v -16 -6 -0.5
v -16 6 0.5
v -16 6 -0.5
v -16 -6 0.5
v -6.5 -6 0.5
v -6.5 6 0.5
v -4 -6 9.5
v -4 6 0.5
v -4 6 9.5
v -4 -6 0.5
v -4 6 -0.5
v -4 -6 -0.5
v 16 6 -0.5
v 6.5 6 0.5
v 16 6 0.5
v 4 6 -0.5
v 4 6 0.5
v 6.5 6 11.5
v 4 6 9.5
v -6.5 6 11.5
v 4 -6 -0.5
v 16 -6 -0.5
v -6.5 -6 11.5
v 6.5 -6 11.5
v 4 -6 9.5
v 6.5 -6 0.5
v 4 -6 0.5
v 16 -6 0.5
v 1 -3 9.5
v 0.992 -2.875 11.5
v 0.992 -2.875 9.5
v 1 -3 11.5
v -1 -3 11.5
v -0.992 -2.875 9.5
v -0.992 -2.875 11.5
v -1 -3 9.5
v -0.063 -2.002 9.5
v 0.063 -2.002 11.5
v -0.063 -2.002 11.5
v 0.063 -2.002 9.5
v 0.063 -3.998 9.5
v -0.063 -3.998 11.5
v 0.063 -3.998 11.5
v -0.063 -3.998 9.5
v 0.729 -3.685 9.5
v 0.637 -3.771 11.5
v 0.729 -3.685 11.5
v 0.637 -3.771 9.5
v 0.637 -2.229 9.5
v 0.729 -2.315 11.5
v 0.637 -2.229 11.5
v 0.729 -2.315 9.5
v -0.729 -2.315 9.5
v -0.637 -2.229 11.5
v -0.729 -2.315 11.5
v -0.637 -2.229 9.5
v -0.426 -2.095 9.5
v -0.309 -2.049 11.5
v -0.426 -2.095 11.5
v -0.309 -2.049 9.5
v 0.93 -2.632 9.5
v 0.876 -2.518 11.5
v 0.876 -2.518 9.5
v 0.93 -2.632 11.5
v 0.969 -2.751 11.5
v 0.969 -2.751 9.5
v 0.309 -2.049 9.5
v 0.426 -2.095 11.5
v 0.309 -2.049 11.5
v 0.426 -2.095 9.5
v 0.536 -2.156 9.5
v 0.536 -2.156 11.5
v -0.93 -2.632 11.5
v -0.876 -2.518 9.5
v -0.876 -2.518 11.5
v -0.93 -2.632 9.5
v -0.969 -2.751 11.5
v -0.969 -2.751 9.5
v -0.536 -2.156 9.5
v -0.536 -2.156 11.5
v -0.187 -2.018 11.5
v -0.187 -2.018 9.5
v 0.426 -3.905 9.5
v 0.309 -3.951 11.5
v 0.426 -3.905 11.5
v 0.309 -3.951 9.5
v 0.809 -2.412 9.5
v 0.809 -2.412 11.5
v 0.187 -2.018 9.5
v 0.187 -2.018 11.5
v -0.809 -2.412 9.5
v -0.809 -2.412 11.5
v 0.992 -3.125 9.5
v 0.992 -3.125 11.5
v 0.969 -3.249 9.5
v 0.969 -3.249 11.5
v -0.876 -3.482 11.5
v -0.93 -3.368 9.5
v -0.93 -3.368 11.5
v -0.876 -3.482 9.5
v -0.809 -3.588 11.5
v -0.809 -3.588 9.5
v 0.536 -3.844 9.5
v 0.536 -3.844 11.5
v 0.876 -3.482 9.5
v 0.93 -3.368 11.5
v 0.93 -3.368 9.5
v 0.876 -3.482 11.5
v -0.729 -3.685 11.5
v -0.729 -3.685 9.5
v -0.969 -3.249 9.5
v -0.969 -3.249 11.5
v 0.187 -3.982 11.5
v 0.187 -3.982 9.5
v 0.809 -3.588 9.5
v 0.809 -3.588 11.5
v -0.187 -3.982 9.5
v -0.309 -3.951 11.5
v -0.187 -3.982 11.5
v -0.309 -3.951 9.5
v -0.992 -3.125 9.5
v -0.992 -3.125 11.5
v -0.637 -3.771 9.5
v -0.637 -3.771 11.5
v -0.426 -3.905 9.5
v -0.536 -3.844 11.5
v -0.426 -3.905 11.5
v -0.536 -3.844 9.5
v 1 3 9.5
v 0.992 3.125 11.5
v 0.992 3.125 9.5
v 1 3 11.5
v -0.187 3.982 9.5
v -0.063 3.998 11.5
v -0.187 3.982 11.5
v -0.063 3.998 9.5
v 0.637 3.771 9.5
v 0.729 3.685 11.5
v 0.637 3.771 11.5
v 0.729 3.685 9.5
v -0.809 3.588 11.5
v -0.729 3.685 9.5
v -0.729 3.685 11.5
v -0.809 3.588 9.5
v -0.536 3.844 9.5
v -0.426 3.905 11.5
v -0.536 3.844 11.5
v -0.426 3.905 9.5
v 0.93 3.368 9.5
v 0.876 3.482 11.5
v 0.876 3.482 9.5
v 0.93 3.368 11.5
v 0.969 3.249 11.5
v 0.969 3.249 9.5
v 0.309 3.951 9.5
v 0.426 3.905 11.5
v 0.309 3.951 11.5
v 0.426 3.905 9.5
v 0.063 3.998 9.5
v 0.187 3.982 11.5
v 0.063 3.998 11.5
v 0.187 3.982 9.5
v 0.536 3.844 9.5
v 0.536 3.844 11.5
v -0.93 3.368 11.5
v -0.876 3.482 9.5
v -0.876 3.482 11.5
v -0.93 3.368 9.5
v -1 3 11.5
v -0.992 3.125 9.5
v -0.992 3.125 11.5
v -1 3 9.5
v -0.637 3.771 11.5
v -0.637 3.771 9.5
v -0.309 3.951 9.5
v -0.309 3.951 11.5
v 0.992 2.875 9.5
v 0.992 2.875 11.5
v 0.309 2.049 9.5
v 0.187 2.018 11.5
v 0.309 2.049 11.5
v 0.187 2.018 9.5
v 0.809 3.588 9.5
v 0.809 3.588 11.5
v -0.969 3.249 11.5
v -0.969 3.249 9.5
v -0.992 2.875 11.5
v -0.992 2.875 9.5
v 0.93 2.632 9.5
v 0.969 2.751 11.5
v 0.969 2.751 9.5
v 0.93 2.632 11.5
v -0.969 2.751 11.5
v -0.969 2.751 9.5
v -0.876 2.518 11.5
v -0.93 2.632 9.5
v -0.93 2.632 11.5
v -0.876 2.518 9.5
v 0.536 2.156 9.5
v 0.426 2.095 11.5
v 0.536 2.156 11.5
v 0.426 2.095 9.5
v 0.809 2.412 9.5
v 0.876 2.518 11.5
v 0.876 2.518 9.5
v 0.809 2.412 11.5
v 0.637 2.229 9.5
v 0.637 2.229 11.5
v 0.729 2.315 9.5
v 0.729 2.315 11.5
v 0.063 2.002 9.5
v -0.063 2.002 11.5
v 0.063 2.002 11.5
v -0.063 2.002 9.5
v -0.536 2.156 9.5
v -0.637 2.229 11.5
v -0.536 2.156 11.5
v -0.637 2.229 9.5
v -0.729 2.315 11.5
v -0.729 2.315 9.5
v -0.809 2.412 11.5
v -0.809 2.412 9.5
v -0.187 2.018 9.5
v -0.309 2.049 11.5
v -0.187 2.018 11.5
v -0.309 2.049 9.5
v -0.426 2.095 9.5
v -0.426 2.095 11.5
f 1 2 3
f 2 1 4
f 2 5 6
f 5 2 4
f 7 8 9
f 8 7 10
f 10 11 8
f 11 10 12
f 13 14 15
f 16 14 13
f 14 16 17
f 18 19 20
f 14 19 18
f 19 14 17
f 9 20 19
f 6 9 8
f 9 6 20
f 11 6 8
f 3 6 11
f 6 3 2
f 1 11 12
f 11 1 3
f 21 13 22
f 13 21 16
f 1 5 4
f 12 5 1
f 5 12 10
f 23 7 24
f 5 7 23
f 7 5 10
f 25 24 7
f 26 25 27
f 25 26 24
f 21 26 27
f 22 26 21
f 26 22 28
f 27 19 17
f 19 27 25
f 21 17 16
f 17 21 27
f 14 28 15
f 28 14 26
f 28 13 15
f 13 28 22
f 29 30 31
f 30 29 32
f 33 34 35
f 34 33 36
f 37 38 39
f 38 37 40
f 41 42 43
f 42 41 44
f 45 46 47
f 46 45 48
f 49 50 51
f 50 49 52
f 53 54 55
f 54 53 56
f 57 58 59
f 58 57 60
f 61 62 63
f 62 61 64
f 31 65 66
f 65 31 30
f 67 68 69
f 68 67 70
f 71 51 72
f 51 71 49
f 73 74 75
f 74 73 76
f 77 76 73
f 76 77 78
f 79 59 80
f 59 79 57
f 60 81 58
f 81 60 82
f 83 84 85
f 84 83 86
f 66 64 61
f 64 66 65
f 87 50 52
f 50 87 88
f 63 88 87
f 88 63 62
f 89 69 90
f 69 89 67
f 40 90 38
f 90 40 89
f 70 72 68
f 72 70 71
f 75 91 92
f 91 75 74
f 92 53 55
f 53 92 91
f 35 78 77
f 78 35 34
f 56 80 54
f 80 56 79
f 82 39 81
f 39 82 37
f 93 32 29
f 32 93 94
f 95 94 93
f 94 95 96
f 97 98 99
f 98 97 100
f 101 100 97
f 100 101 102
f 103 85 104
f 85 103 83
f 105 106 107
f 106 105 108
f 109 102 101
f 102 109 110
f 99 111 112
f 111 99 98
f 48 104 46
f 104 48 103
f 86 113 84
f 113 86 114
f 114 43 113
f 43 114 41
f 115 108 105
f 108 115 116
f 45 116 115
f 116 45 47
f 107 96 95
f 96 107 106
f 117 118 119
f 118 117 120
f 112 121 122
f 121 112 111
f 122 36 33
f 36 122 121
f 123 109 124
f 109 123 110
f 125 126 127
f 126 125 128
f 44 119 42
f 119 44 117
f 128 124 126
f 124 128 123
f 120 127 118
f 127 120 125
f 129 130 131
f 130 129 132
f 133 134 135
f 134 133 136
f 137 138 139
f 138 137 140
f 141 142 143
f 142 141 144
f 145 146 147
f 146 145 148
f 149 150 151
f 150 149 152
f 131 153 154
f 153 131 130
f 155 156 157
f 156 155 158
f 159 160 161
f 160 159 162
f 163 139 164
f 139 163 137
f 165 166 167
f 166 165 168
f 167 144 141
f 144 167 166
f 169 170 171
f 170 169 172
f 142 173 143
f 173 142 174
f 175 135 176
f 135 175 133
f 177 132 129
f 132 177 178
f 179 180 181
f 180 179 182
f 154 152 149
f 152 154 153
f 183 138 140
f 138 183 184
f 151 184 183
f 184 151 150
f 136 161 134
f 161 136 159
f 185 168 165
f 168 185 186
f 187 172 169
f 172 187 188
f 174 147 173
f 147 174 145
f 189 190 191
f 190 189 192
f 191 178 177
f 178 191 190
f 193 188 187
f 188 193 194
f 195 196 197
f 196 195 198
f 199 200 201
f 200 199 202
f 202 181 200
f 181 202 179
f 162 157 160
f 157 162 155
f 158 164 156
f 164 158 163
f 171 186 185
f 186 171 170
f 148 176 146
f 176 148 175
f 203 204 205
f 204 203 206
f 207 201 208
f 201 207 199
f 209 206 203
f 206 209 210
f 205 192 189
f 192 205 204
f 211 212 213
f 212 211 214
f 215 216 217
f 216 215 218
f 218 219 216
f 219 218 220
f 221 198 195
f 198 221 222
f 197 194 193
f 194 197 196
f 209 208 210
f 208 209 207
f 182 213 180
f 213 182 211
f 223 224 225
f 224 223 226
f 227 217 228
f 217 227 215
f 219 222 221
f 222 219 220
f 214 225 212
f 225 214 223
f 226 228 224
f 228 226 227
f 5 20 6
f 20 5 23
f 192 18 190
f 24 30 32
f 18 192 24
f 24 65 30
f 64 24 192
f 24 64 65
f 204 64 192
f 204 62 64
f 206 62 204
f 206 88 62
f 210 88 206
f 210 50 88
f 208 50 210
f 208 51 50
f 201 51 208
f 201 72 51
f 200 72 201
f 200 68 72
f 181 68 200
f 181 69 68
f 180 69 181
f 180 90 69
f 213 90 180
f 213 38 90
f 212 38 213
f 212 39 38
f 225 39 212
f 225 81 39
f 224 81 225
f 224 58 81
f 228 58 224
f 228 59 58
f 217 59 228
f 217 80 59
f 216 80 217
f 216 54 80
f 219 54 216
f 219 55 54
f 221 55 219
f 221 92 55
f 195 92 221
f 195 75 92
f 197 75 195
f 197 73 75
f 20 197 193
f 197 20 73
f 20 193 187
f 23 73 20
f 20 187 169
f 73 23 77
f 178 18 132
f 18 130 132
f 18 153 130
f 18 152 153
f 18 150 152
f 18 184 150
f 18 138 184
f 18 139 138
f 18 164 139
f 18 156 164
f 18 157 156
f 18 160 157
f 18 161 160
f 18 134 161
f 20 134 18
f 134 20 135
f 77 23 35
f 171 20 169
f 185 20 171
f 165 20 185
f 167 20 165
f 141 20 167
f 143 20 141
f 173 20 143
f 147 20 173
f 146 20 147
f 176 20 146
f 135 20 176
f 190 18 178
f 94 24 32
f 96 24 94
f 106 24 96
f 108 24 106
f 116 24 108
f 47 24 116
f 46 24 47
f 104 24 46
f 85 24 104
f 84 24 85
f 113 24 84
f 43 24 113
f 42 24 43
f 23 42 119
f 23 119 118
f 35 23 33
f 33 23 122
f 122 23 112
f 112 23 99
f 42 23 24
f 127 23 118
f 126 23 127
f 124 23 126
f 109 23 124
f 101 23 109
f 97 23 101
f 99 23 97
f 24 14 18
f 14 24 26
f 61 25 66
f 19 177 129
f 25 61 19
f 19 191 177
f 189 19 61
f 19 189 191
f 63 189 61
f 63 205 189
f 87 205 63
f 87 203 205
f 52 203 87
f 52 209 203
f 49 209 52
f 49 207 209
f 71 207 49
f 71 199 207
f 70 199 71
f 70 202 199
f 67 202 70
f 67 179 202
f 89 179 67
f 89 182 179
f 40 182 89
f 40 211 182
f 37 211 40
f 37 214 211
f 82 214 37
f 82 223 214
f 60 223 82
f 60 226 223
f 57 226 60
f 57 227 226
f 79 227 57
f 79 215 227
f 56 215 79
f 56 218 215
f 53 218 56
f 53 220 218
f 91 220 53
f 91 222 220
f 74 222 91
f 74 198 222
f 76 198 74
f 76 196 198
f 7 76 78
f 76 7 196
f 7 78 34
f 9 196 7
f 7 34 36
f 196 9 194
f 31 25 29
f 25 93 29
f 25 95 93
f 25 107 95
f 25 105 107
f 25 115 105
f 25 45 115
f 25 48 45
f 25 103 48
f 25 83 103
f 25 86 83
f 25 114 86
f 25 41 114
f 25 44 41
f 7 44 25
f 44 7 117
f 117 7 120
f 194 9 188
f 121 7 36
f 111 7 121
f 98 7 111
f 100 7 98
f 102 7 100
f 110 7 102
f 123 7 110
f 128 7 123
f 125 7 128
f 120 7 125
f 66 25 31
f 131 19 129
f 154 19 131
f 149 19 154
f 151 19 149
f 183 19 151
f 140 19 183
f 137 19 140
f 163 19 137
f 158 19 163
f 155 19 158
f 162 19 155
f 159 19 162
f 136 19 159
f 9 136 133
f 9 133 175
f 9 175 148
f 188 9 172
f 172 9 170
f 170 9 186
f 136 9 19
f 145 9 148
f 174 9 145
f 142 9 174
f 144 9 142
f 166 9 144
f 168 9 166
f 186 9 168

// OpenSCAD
//Level Sensor
$fn=50;

module sensor(side=12) {
    for(i=[-1,1])translate([10*i,0])cube([side,side,1],center=true);
    difference() {
        translate([0,0,side/2-0.5])cube([side+1,side,side],center=true);
        translate([0,0,side/2-1.5])cube([side-4,side,side-2],center=true);
        for(i=[-1,1])translate([0,3*i])cylinder(r=1,h=side);
    }
}
sensor();
